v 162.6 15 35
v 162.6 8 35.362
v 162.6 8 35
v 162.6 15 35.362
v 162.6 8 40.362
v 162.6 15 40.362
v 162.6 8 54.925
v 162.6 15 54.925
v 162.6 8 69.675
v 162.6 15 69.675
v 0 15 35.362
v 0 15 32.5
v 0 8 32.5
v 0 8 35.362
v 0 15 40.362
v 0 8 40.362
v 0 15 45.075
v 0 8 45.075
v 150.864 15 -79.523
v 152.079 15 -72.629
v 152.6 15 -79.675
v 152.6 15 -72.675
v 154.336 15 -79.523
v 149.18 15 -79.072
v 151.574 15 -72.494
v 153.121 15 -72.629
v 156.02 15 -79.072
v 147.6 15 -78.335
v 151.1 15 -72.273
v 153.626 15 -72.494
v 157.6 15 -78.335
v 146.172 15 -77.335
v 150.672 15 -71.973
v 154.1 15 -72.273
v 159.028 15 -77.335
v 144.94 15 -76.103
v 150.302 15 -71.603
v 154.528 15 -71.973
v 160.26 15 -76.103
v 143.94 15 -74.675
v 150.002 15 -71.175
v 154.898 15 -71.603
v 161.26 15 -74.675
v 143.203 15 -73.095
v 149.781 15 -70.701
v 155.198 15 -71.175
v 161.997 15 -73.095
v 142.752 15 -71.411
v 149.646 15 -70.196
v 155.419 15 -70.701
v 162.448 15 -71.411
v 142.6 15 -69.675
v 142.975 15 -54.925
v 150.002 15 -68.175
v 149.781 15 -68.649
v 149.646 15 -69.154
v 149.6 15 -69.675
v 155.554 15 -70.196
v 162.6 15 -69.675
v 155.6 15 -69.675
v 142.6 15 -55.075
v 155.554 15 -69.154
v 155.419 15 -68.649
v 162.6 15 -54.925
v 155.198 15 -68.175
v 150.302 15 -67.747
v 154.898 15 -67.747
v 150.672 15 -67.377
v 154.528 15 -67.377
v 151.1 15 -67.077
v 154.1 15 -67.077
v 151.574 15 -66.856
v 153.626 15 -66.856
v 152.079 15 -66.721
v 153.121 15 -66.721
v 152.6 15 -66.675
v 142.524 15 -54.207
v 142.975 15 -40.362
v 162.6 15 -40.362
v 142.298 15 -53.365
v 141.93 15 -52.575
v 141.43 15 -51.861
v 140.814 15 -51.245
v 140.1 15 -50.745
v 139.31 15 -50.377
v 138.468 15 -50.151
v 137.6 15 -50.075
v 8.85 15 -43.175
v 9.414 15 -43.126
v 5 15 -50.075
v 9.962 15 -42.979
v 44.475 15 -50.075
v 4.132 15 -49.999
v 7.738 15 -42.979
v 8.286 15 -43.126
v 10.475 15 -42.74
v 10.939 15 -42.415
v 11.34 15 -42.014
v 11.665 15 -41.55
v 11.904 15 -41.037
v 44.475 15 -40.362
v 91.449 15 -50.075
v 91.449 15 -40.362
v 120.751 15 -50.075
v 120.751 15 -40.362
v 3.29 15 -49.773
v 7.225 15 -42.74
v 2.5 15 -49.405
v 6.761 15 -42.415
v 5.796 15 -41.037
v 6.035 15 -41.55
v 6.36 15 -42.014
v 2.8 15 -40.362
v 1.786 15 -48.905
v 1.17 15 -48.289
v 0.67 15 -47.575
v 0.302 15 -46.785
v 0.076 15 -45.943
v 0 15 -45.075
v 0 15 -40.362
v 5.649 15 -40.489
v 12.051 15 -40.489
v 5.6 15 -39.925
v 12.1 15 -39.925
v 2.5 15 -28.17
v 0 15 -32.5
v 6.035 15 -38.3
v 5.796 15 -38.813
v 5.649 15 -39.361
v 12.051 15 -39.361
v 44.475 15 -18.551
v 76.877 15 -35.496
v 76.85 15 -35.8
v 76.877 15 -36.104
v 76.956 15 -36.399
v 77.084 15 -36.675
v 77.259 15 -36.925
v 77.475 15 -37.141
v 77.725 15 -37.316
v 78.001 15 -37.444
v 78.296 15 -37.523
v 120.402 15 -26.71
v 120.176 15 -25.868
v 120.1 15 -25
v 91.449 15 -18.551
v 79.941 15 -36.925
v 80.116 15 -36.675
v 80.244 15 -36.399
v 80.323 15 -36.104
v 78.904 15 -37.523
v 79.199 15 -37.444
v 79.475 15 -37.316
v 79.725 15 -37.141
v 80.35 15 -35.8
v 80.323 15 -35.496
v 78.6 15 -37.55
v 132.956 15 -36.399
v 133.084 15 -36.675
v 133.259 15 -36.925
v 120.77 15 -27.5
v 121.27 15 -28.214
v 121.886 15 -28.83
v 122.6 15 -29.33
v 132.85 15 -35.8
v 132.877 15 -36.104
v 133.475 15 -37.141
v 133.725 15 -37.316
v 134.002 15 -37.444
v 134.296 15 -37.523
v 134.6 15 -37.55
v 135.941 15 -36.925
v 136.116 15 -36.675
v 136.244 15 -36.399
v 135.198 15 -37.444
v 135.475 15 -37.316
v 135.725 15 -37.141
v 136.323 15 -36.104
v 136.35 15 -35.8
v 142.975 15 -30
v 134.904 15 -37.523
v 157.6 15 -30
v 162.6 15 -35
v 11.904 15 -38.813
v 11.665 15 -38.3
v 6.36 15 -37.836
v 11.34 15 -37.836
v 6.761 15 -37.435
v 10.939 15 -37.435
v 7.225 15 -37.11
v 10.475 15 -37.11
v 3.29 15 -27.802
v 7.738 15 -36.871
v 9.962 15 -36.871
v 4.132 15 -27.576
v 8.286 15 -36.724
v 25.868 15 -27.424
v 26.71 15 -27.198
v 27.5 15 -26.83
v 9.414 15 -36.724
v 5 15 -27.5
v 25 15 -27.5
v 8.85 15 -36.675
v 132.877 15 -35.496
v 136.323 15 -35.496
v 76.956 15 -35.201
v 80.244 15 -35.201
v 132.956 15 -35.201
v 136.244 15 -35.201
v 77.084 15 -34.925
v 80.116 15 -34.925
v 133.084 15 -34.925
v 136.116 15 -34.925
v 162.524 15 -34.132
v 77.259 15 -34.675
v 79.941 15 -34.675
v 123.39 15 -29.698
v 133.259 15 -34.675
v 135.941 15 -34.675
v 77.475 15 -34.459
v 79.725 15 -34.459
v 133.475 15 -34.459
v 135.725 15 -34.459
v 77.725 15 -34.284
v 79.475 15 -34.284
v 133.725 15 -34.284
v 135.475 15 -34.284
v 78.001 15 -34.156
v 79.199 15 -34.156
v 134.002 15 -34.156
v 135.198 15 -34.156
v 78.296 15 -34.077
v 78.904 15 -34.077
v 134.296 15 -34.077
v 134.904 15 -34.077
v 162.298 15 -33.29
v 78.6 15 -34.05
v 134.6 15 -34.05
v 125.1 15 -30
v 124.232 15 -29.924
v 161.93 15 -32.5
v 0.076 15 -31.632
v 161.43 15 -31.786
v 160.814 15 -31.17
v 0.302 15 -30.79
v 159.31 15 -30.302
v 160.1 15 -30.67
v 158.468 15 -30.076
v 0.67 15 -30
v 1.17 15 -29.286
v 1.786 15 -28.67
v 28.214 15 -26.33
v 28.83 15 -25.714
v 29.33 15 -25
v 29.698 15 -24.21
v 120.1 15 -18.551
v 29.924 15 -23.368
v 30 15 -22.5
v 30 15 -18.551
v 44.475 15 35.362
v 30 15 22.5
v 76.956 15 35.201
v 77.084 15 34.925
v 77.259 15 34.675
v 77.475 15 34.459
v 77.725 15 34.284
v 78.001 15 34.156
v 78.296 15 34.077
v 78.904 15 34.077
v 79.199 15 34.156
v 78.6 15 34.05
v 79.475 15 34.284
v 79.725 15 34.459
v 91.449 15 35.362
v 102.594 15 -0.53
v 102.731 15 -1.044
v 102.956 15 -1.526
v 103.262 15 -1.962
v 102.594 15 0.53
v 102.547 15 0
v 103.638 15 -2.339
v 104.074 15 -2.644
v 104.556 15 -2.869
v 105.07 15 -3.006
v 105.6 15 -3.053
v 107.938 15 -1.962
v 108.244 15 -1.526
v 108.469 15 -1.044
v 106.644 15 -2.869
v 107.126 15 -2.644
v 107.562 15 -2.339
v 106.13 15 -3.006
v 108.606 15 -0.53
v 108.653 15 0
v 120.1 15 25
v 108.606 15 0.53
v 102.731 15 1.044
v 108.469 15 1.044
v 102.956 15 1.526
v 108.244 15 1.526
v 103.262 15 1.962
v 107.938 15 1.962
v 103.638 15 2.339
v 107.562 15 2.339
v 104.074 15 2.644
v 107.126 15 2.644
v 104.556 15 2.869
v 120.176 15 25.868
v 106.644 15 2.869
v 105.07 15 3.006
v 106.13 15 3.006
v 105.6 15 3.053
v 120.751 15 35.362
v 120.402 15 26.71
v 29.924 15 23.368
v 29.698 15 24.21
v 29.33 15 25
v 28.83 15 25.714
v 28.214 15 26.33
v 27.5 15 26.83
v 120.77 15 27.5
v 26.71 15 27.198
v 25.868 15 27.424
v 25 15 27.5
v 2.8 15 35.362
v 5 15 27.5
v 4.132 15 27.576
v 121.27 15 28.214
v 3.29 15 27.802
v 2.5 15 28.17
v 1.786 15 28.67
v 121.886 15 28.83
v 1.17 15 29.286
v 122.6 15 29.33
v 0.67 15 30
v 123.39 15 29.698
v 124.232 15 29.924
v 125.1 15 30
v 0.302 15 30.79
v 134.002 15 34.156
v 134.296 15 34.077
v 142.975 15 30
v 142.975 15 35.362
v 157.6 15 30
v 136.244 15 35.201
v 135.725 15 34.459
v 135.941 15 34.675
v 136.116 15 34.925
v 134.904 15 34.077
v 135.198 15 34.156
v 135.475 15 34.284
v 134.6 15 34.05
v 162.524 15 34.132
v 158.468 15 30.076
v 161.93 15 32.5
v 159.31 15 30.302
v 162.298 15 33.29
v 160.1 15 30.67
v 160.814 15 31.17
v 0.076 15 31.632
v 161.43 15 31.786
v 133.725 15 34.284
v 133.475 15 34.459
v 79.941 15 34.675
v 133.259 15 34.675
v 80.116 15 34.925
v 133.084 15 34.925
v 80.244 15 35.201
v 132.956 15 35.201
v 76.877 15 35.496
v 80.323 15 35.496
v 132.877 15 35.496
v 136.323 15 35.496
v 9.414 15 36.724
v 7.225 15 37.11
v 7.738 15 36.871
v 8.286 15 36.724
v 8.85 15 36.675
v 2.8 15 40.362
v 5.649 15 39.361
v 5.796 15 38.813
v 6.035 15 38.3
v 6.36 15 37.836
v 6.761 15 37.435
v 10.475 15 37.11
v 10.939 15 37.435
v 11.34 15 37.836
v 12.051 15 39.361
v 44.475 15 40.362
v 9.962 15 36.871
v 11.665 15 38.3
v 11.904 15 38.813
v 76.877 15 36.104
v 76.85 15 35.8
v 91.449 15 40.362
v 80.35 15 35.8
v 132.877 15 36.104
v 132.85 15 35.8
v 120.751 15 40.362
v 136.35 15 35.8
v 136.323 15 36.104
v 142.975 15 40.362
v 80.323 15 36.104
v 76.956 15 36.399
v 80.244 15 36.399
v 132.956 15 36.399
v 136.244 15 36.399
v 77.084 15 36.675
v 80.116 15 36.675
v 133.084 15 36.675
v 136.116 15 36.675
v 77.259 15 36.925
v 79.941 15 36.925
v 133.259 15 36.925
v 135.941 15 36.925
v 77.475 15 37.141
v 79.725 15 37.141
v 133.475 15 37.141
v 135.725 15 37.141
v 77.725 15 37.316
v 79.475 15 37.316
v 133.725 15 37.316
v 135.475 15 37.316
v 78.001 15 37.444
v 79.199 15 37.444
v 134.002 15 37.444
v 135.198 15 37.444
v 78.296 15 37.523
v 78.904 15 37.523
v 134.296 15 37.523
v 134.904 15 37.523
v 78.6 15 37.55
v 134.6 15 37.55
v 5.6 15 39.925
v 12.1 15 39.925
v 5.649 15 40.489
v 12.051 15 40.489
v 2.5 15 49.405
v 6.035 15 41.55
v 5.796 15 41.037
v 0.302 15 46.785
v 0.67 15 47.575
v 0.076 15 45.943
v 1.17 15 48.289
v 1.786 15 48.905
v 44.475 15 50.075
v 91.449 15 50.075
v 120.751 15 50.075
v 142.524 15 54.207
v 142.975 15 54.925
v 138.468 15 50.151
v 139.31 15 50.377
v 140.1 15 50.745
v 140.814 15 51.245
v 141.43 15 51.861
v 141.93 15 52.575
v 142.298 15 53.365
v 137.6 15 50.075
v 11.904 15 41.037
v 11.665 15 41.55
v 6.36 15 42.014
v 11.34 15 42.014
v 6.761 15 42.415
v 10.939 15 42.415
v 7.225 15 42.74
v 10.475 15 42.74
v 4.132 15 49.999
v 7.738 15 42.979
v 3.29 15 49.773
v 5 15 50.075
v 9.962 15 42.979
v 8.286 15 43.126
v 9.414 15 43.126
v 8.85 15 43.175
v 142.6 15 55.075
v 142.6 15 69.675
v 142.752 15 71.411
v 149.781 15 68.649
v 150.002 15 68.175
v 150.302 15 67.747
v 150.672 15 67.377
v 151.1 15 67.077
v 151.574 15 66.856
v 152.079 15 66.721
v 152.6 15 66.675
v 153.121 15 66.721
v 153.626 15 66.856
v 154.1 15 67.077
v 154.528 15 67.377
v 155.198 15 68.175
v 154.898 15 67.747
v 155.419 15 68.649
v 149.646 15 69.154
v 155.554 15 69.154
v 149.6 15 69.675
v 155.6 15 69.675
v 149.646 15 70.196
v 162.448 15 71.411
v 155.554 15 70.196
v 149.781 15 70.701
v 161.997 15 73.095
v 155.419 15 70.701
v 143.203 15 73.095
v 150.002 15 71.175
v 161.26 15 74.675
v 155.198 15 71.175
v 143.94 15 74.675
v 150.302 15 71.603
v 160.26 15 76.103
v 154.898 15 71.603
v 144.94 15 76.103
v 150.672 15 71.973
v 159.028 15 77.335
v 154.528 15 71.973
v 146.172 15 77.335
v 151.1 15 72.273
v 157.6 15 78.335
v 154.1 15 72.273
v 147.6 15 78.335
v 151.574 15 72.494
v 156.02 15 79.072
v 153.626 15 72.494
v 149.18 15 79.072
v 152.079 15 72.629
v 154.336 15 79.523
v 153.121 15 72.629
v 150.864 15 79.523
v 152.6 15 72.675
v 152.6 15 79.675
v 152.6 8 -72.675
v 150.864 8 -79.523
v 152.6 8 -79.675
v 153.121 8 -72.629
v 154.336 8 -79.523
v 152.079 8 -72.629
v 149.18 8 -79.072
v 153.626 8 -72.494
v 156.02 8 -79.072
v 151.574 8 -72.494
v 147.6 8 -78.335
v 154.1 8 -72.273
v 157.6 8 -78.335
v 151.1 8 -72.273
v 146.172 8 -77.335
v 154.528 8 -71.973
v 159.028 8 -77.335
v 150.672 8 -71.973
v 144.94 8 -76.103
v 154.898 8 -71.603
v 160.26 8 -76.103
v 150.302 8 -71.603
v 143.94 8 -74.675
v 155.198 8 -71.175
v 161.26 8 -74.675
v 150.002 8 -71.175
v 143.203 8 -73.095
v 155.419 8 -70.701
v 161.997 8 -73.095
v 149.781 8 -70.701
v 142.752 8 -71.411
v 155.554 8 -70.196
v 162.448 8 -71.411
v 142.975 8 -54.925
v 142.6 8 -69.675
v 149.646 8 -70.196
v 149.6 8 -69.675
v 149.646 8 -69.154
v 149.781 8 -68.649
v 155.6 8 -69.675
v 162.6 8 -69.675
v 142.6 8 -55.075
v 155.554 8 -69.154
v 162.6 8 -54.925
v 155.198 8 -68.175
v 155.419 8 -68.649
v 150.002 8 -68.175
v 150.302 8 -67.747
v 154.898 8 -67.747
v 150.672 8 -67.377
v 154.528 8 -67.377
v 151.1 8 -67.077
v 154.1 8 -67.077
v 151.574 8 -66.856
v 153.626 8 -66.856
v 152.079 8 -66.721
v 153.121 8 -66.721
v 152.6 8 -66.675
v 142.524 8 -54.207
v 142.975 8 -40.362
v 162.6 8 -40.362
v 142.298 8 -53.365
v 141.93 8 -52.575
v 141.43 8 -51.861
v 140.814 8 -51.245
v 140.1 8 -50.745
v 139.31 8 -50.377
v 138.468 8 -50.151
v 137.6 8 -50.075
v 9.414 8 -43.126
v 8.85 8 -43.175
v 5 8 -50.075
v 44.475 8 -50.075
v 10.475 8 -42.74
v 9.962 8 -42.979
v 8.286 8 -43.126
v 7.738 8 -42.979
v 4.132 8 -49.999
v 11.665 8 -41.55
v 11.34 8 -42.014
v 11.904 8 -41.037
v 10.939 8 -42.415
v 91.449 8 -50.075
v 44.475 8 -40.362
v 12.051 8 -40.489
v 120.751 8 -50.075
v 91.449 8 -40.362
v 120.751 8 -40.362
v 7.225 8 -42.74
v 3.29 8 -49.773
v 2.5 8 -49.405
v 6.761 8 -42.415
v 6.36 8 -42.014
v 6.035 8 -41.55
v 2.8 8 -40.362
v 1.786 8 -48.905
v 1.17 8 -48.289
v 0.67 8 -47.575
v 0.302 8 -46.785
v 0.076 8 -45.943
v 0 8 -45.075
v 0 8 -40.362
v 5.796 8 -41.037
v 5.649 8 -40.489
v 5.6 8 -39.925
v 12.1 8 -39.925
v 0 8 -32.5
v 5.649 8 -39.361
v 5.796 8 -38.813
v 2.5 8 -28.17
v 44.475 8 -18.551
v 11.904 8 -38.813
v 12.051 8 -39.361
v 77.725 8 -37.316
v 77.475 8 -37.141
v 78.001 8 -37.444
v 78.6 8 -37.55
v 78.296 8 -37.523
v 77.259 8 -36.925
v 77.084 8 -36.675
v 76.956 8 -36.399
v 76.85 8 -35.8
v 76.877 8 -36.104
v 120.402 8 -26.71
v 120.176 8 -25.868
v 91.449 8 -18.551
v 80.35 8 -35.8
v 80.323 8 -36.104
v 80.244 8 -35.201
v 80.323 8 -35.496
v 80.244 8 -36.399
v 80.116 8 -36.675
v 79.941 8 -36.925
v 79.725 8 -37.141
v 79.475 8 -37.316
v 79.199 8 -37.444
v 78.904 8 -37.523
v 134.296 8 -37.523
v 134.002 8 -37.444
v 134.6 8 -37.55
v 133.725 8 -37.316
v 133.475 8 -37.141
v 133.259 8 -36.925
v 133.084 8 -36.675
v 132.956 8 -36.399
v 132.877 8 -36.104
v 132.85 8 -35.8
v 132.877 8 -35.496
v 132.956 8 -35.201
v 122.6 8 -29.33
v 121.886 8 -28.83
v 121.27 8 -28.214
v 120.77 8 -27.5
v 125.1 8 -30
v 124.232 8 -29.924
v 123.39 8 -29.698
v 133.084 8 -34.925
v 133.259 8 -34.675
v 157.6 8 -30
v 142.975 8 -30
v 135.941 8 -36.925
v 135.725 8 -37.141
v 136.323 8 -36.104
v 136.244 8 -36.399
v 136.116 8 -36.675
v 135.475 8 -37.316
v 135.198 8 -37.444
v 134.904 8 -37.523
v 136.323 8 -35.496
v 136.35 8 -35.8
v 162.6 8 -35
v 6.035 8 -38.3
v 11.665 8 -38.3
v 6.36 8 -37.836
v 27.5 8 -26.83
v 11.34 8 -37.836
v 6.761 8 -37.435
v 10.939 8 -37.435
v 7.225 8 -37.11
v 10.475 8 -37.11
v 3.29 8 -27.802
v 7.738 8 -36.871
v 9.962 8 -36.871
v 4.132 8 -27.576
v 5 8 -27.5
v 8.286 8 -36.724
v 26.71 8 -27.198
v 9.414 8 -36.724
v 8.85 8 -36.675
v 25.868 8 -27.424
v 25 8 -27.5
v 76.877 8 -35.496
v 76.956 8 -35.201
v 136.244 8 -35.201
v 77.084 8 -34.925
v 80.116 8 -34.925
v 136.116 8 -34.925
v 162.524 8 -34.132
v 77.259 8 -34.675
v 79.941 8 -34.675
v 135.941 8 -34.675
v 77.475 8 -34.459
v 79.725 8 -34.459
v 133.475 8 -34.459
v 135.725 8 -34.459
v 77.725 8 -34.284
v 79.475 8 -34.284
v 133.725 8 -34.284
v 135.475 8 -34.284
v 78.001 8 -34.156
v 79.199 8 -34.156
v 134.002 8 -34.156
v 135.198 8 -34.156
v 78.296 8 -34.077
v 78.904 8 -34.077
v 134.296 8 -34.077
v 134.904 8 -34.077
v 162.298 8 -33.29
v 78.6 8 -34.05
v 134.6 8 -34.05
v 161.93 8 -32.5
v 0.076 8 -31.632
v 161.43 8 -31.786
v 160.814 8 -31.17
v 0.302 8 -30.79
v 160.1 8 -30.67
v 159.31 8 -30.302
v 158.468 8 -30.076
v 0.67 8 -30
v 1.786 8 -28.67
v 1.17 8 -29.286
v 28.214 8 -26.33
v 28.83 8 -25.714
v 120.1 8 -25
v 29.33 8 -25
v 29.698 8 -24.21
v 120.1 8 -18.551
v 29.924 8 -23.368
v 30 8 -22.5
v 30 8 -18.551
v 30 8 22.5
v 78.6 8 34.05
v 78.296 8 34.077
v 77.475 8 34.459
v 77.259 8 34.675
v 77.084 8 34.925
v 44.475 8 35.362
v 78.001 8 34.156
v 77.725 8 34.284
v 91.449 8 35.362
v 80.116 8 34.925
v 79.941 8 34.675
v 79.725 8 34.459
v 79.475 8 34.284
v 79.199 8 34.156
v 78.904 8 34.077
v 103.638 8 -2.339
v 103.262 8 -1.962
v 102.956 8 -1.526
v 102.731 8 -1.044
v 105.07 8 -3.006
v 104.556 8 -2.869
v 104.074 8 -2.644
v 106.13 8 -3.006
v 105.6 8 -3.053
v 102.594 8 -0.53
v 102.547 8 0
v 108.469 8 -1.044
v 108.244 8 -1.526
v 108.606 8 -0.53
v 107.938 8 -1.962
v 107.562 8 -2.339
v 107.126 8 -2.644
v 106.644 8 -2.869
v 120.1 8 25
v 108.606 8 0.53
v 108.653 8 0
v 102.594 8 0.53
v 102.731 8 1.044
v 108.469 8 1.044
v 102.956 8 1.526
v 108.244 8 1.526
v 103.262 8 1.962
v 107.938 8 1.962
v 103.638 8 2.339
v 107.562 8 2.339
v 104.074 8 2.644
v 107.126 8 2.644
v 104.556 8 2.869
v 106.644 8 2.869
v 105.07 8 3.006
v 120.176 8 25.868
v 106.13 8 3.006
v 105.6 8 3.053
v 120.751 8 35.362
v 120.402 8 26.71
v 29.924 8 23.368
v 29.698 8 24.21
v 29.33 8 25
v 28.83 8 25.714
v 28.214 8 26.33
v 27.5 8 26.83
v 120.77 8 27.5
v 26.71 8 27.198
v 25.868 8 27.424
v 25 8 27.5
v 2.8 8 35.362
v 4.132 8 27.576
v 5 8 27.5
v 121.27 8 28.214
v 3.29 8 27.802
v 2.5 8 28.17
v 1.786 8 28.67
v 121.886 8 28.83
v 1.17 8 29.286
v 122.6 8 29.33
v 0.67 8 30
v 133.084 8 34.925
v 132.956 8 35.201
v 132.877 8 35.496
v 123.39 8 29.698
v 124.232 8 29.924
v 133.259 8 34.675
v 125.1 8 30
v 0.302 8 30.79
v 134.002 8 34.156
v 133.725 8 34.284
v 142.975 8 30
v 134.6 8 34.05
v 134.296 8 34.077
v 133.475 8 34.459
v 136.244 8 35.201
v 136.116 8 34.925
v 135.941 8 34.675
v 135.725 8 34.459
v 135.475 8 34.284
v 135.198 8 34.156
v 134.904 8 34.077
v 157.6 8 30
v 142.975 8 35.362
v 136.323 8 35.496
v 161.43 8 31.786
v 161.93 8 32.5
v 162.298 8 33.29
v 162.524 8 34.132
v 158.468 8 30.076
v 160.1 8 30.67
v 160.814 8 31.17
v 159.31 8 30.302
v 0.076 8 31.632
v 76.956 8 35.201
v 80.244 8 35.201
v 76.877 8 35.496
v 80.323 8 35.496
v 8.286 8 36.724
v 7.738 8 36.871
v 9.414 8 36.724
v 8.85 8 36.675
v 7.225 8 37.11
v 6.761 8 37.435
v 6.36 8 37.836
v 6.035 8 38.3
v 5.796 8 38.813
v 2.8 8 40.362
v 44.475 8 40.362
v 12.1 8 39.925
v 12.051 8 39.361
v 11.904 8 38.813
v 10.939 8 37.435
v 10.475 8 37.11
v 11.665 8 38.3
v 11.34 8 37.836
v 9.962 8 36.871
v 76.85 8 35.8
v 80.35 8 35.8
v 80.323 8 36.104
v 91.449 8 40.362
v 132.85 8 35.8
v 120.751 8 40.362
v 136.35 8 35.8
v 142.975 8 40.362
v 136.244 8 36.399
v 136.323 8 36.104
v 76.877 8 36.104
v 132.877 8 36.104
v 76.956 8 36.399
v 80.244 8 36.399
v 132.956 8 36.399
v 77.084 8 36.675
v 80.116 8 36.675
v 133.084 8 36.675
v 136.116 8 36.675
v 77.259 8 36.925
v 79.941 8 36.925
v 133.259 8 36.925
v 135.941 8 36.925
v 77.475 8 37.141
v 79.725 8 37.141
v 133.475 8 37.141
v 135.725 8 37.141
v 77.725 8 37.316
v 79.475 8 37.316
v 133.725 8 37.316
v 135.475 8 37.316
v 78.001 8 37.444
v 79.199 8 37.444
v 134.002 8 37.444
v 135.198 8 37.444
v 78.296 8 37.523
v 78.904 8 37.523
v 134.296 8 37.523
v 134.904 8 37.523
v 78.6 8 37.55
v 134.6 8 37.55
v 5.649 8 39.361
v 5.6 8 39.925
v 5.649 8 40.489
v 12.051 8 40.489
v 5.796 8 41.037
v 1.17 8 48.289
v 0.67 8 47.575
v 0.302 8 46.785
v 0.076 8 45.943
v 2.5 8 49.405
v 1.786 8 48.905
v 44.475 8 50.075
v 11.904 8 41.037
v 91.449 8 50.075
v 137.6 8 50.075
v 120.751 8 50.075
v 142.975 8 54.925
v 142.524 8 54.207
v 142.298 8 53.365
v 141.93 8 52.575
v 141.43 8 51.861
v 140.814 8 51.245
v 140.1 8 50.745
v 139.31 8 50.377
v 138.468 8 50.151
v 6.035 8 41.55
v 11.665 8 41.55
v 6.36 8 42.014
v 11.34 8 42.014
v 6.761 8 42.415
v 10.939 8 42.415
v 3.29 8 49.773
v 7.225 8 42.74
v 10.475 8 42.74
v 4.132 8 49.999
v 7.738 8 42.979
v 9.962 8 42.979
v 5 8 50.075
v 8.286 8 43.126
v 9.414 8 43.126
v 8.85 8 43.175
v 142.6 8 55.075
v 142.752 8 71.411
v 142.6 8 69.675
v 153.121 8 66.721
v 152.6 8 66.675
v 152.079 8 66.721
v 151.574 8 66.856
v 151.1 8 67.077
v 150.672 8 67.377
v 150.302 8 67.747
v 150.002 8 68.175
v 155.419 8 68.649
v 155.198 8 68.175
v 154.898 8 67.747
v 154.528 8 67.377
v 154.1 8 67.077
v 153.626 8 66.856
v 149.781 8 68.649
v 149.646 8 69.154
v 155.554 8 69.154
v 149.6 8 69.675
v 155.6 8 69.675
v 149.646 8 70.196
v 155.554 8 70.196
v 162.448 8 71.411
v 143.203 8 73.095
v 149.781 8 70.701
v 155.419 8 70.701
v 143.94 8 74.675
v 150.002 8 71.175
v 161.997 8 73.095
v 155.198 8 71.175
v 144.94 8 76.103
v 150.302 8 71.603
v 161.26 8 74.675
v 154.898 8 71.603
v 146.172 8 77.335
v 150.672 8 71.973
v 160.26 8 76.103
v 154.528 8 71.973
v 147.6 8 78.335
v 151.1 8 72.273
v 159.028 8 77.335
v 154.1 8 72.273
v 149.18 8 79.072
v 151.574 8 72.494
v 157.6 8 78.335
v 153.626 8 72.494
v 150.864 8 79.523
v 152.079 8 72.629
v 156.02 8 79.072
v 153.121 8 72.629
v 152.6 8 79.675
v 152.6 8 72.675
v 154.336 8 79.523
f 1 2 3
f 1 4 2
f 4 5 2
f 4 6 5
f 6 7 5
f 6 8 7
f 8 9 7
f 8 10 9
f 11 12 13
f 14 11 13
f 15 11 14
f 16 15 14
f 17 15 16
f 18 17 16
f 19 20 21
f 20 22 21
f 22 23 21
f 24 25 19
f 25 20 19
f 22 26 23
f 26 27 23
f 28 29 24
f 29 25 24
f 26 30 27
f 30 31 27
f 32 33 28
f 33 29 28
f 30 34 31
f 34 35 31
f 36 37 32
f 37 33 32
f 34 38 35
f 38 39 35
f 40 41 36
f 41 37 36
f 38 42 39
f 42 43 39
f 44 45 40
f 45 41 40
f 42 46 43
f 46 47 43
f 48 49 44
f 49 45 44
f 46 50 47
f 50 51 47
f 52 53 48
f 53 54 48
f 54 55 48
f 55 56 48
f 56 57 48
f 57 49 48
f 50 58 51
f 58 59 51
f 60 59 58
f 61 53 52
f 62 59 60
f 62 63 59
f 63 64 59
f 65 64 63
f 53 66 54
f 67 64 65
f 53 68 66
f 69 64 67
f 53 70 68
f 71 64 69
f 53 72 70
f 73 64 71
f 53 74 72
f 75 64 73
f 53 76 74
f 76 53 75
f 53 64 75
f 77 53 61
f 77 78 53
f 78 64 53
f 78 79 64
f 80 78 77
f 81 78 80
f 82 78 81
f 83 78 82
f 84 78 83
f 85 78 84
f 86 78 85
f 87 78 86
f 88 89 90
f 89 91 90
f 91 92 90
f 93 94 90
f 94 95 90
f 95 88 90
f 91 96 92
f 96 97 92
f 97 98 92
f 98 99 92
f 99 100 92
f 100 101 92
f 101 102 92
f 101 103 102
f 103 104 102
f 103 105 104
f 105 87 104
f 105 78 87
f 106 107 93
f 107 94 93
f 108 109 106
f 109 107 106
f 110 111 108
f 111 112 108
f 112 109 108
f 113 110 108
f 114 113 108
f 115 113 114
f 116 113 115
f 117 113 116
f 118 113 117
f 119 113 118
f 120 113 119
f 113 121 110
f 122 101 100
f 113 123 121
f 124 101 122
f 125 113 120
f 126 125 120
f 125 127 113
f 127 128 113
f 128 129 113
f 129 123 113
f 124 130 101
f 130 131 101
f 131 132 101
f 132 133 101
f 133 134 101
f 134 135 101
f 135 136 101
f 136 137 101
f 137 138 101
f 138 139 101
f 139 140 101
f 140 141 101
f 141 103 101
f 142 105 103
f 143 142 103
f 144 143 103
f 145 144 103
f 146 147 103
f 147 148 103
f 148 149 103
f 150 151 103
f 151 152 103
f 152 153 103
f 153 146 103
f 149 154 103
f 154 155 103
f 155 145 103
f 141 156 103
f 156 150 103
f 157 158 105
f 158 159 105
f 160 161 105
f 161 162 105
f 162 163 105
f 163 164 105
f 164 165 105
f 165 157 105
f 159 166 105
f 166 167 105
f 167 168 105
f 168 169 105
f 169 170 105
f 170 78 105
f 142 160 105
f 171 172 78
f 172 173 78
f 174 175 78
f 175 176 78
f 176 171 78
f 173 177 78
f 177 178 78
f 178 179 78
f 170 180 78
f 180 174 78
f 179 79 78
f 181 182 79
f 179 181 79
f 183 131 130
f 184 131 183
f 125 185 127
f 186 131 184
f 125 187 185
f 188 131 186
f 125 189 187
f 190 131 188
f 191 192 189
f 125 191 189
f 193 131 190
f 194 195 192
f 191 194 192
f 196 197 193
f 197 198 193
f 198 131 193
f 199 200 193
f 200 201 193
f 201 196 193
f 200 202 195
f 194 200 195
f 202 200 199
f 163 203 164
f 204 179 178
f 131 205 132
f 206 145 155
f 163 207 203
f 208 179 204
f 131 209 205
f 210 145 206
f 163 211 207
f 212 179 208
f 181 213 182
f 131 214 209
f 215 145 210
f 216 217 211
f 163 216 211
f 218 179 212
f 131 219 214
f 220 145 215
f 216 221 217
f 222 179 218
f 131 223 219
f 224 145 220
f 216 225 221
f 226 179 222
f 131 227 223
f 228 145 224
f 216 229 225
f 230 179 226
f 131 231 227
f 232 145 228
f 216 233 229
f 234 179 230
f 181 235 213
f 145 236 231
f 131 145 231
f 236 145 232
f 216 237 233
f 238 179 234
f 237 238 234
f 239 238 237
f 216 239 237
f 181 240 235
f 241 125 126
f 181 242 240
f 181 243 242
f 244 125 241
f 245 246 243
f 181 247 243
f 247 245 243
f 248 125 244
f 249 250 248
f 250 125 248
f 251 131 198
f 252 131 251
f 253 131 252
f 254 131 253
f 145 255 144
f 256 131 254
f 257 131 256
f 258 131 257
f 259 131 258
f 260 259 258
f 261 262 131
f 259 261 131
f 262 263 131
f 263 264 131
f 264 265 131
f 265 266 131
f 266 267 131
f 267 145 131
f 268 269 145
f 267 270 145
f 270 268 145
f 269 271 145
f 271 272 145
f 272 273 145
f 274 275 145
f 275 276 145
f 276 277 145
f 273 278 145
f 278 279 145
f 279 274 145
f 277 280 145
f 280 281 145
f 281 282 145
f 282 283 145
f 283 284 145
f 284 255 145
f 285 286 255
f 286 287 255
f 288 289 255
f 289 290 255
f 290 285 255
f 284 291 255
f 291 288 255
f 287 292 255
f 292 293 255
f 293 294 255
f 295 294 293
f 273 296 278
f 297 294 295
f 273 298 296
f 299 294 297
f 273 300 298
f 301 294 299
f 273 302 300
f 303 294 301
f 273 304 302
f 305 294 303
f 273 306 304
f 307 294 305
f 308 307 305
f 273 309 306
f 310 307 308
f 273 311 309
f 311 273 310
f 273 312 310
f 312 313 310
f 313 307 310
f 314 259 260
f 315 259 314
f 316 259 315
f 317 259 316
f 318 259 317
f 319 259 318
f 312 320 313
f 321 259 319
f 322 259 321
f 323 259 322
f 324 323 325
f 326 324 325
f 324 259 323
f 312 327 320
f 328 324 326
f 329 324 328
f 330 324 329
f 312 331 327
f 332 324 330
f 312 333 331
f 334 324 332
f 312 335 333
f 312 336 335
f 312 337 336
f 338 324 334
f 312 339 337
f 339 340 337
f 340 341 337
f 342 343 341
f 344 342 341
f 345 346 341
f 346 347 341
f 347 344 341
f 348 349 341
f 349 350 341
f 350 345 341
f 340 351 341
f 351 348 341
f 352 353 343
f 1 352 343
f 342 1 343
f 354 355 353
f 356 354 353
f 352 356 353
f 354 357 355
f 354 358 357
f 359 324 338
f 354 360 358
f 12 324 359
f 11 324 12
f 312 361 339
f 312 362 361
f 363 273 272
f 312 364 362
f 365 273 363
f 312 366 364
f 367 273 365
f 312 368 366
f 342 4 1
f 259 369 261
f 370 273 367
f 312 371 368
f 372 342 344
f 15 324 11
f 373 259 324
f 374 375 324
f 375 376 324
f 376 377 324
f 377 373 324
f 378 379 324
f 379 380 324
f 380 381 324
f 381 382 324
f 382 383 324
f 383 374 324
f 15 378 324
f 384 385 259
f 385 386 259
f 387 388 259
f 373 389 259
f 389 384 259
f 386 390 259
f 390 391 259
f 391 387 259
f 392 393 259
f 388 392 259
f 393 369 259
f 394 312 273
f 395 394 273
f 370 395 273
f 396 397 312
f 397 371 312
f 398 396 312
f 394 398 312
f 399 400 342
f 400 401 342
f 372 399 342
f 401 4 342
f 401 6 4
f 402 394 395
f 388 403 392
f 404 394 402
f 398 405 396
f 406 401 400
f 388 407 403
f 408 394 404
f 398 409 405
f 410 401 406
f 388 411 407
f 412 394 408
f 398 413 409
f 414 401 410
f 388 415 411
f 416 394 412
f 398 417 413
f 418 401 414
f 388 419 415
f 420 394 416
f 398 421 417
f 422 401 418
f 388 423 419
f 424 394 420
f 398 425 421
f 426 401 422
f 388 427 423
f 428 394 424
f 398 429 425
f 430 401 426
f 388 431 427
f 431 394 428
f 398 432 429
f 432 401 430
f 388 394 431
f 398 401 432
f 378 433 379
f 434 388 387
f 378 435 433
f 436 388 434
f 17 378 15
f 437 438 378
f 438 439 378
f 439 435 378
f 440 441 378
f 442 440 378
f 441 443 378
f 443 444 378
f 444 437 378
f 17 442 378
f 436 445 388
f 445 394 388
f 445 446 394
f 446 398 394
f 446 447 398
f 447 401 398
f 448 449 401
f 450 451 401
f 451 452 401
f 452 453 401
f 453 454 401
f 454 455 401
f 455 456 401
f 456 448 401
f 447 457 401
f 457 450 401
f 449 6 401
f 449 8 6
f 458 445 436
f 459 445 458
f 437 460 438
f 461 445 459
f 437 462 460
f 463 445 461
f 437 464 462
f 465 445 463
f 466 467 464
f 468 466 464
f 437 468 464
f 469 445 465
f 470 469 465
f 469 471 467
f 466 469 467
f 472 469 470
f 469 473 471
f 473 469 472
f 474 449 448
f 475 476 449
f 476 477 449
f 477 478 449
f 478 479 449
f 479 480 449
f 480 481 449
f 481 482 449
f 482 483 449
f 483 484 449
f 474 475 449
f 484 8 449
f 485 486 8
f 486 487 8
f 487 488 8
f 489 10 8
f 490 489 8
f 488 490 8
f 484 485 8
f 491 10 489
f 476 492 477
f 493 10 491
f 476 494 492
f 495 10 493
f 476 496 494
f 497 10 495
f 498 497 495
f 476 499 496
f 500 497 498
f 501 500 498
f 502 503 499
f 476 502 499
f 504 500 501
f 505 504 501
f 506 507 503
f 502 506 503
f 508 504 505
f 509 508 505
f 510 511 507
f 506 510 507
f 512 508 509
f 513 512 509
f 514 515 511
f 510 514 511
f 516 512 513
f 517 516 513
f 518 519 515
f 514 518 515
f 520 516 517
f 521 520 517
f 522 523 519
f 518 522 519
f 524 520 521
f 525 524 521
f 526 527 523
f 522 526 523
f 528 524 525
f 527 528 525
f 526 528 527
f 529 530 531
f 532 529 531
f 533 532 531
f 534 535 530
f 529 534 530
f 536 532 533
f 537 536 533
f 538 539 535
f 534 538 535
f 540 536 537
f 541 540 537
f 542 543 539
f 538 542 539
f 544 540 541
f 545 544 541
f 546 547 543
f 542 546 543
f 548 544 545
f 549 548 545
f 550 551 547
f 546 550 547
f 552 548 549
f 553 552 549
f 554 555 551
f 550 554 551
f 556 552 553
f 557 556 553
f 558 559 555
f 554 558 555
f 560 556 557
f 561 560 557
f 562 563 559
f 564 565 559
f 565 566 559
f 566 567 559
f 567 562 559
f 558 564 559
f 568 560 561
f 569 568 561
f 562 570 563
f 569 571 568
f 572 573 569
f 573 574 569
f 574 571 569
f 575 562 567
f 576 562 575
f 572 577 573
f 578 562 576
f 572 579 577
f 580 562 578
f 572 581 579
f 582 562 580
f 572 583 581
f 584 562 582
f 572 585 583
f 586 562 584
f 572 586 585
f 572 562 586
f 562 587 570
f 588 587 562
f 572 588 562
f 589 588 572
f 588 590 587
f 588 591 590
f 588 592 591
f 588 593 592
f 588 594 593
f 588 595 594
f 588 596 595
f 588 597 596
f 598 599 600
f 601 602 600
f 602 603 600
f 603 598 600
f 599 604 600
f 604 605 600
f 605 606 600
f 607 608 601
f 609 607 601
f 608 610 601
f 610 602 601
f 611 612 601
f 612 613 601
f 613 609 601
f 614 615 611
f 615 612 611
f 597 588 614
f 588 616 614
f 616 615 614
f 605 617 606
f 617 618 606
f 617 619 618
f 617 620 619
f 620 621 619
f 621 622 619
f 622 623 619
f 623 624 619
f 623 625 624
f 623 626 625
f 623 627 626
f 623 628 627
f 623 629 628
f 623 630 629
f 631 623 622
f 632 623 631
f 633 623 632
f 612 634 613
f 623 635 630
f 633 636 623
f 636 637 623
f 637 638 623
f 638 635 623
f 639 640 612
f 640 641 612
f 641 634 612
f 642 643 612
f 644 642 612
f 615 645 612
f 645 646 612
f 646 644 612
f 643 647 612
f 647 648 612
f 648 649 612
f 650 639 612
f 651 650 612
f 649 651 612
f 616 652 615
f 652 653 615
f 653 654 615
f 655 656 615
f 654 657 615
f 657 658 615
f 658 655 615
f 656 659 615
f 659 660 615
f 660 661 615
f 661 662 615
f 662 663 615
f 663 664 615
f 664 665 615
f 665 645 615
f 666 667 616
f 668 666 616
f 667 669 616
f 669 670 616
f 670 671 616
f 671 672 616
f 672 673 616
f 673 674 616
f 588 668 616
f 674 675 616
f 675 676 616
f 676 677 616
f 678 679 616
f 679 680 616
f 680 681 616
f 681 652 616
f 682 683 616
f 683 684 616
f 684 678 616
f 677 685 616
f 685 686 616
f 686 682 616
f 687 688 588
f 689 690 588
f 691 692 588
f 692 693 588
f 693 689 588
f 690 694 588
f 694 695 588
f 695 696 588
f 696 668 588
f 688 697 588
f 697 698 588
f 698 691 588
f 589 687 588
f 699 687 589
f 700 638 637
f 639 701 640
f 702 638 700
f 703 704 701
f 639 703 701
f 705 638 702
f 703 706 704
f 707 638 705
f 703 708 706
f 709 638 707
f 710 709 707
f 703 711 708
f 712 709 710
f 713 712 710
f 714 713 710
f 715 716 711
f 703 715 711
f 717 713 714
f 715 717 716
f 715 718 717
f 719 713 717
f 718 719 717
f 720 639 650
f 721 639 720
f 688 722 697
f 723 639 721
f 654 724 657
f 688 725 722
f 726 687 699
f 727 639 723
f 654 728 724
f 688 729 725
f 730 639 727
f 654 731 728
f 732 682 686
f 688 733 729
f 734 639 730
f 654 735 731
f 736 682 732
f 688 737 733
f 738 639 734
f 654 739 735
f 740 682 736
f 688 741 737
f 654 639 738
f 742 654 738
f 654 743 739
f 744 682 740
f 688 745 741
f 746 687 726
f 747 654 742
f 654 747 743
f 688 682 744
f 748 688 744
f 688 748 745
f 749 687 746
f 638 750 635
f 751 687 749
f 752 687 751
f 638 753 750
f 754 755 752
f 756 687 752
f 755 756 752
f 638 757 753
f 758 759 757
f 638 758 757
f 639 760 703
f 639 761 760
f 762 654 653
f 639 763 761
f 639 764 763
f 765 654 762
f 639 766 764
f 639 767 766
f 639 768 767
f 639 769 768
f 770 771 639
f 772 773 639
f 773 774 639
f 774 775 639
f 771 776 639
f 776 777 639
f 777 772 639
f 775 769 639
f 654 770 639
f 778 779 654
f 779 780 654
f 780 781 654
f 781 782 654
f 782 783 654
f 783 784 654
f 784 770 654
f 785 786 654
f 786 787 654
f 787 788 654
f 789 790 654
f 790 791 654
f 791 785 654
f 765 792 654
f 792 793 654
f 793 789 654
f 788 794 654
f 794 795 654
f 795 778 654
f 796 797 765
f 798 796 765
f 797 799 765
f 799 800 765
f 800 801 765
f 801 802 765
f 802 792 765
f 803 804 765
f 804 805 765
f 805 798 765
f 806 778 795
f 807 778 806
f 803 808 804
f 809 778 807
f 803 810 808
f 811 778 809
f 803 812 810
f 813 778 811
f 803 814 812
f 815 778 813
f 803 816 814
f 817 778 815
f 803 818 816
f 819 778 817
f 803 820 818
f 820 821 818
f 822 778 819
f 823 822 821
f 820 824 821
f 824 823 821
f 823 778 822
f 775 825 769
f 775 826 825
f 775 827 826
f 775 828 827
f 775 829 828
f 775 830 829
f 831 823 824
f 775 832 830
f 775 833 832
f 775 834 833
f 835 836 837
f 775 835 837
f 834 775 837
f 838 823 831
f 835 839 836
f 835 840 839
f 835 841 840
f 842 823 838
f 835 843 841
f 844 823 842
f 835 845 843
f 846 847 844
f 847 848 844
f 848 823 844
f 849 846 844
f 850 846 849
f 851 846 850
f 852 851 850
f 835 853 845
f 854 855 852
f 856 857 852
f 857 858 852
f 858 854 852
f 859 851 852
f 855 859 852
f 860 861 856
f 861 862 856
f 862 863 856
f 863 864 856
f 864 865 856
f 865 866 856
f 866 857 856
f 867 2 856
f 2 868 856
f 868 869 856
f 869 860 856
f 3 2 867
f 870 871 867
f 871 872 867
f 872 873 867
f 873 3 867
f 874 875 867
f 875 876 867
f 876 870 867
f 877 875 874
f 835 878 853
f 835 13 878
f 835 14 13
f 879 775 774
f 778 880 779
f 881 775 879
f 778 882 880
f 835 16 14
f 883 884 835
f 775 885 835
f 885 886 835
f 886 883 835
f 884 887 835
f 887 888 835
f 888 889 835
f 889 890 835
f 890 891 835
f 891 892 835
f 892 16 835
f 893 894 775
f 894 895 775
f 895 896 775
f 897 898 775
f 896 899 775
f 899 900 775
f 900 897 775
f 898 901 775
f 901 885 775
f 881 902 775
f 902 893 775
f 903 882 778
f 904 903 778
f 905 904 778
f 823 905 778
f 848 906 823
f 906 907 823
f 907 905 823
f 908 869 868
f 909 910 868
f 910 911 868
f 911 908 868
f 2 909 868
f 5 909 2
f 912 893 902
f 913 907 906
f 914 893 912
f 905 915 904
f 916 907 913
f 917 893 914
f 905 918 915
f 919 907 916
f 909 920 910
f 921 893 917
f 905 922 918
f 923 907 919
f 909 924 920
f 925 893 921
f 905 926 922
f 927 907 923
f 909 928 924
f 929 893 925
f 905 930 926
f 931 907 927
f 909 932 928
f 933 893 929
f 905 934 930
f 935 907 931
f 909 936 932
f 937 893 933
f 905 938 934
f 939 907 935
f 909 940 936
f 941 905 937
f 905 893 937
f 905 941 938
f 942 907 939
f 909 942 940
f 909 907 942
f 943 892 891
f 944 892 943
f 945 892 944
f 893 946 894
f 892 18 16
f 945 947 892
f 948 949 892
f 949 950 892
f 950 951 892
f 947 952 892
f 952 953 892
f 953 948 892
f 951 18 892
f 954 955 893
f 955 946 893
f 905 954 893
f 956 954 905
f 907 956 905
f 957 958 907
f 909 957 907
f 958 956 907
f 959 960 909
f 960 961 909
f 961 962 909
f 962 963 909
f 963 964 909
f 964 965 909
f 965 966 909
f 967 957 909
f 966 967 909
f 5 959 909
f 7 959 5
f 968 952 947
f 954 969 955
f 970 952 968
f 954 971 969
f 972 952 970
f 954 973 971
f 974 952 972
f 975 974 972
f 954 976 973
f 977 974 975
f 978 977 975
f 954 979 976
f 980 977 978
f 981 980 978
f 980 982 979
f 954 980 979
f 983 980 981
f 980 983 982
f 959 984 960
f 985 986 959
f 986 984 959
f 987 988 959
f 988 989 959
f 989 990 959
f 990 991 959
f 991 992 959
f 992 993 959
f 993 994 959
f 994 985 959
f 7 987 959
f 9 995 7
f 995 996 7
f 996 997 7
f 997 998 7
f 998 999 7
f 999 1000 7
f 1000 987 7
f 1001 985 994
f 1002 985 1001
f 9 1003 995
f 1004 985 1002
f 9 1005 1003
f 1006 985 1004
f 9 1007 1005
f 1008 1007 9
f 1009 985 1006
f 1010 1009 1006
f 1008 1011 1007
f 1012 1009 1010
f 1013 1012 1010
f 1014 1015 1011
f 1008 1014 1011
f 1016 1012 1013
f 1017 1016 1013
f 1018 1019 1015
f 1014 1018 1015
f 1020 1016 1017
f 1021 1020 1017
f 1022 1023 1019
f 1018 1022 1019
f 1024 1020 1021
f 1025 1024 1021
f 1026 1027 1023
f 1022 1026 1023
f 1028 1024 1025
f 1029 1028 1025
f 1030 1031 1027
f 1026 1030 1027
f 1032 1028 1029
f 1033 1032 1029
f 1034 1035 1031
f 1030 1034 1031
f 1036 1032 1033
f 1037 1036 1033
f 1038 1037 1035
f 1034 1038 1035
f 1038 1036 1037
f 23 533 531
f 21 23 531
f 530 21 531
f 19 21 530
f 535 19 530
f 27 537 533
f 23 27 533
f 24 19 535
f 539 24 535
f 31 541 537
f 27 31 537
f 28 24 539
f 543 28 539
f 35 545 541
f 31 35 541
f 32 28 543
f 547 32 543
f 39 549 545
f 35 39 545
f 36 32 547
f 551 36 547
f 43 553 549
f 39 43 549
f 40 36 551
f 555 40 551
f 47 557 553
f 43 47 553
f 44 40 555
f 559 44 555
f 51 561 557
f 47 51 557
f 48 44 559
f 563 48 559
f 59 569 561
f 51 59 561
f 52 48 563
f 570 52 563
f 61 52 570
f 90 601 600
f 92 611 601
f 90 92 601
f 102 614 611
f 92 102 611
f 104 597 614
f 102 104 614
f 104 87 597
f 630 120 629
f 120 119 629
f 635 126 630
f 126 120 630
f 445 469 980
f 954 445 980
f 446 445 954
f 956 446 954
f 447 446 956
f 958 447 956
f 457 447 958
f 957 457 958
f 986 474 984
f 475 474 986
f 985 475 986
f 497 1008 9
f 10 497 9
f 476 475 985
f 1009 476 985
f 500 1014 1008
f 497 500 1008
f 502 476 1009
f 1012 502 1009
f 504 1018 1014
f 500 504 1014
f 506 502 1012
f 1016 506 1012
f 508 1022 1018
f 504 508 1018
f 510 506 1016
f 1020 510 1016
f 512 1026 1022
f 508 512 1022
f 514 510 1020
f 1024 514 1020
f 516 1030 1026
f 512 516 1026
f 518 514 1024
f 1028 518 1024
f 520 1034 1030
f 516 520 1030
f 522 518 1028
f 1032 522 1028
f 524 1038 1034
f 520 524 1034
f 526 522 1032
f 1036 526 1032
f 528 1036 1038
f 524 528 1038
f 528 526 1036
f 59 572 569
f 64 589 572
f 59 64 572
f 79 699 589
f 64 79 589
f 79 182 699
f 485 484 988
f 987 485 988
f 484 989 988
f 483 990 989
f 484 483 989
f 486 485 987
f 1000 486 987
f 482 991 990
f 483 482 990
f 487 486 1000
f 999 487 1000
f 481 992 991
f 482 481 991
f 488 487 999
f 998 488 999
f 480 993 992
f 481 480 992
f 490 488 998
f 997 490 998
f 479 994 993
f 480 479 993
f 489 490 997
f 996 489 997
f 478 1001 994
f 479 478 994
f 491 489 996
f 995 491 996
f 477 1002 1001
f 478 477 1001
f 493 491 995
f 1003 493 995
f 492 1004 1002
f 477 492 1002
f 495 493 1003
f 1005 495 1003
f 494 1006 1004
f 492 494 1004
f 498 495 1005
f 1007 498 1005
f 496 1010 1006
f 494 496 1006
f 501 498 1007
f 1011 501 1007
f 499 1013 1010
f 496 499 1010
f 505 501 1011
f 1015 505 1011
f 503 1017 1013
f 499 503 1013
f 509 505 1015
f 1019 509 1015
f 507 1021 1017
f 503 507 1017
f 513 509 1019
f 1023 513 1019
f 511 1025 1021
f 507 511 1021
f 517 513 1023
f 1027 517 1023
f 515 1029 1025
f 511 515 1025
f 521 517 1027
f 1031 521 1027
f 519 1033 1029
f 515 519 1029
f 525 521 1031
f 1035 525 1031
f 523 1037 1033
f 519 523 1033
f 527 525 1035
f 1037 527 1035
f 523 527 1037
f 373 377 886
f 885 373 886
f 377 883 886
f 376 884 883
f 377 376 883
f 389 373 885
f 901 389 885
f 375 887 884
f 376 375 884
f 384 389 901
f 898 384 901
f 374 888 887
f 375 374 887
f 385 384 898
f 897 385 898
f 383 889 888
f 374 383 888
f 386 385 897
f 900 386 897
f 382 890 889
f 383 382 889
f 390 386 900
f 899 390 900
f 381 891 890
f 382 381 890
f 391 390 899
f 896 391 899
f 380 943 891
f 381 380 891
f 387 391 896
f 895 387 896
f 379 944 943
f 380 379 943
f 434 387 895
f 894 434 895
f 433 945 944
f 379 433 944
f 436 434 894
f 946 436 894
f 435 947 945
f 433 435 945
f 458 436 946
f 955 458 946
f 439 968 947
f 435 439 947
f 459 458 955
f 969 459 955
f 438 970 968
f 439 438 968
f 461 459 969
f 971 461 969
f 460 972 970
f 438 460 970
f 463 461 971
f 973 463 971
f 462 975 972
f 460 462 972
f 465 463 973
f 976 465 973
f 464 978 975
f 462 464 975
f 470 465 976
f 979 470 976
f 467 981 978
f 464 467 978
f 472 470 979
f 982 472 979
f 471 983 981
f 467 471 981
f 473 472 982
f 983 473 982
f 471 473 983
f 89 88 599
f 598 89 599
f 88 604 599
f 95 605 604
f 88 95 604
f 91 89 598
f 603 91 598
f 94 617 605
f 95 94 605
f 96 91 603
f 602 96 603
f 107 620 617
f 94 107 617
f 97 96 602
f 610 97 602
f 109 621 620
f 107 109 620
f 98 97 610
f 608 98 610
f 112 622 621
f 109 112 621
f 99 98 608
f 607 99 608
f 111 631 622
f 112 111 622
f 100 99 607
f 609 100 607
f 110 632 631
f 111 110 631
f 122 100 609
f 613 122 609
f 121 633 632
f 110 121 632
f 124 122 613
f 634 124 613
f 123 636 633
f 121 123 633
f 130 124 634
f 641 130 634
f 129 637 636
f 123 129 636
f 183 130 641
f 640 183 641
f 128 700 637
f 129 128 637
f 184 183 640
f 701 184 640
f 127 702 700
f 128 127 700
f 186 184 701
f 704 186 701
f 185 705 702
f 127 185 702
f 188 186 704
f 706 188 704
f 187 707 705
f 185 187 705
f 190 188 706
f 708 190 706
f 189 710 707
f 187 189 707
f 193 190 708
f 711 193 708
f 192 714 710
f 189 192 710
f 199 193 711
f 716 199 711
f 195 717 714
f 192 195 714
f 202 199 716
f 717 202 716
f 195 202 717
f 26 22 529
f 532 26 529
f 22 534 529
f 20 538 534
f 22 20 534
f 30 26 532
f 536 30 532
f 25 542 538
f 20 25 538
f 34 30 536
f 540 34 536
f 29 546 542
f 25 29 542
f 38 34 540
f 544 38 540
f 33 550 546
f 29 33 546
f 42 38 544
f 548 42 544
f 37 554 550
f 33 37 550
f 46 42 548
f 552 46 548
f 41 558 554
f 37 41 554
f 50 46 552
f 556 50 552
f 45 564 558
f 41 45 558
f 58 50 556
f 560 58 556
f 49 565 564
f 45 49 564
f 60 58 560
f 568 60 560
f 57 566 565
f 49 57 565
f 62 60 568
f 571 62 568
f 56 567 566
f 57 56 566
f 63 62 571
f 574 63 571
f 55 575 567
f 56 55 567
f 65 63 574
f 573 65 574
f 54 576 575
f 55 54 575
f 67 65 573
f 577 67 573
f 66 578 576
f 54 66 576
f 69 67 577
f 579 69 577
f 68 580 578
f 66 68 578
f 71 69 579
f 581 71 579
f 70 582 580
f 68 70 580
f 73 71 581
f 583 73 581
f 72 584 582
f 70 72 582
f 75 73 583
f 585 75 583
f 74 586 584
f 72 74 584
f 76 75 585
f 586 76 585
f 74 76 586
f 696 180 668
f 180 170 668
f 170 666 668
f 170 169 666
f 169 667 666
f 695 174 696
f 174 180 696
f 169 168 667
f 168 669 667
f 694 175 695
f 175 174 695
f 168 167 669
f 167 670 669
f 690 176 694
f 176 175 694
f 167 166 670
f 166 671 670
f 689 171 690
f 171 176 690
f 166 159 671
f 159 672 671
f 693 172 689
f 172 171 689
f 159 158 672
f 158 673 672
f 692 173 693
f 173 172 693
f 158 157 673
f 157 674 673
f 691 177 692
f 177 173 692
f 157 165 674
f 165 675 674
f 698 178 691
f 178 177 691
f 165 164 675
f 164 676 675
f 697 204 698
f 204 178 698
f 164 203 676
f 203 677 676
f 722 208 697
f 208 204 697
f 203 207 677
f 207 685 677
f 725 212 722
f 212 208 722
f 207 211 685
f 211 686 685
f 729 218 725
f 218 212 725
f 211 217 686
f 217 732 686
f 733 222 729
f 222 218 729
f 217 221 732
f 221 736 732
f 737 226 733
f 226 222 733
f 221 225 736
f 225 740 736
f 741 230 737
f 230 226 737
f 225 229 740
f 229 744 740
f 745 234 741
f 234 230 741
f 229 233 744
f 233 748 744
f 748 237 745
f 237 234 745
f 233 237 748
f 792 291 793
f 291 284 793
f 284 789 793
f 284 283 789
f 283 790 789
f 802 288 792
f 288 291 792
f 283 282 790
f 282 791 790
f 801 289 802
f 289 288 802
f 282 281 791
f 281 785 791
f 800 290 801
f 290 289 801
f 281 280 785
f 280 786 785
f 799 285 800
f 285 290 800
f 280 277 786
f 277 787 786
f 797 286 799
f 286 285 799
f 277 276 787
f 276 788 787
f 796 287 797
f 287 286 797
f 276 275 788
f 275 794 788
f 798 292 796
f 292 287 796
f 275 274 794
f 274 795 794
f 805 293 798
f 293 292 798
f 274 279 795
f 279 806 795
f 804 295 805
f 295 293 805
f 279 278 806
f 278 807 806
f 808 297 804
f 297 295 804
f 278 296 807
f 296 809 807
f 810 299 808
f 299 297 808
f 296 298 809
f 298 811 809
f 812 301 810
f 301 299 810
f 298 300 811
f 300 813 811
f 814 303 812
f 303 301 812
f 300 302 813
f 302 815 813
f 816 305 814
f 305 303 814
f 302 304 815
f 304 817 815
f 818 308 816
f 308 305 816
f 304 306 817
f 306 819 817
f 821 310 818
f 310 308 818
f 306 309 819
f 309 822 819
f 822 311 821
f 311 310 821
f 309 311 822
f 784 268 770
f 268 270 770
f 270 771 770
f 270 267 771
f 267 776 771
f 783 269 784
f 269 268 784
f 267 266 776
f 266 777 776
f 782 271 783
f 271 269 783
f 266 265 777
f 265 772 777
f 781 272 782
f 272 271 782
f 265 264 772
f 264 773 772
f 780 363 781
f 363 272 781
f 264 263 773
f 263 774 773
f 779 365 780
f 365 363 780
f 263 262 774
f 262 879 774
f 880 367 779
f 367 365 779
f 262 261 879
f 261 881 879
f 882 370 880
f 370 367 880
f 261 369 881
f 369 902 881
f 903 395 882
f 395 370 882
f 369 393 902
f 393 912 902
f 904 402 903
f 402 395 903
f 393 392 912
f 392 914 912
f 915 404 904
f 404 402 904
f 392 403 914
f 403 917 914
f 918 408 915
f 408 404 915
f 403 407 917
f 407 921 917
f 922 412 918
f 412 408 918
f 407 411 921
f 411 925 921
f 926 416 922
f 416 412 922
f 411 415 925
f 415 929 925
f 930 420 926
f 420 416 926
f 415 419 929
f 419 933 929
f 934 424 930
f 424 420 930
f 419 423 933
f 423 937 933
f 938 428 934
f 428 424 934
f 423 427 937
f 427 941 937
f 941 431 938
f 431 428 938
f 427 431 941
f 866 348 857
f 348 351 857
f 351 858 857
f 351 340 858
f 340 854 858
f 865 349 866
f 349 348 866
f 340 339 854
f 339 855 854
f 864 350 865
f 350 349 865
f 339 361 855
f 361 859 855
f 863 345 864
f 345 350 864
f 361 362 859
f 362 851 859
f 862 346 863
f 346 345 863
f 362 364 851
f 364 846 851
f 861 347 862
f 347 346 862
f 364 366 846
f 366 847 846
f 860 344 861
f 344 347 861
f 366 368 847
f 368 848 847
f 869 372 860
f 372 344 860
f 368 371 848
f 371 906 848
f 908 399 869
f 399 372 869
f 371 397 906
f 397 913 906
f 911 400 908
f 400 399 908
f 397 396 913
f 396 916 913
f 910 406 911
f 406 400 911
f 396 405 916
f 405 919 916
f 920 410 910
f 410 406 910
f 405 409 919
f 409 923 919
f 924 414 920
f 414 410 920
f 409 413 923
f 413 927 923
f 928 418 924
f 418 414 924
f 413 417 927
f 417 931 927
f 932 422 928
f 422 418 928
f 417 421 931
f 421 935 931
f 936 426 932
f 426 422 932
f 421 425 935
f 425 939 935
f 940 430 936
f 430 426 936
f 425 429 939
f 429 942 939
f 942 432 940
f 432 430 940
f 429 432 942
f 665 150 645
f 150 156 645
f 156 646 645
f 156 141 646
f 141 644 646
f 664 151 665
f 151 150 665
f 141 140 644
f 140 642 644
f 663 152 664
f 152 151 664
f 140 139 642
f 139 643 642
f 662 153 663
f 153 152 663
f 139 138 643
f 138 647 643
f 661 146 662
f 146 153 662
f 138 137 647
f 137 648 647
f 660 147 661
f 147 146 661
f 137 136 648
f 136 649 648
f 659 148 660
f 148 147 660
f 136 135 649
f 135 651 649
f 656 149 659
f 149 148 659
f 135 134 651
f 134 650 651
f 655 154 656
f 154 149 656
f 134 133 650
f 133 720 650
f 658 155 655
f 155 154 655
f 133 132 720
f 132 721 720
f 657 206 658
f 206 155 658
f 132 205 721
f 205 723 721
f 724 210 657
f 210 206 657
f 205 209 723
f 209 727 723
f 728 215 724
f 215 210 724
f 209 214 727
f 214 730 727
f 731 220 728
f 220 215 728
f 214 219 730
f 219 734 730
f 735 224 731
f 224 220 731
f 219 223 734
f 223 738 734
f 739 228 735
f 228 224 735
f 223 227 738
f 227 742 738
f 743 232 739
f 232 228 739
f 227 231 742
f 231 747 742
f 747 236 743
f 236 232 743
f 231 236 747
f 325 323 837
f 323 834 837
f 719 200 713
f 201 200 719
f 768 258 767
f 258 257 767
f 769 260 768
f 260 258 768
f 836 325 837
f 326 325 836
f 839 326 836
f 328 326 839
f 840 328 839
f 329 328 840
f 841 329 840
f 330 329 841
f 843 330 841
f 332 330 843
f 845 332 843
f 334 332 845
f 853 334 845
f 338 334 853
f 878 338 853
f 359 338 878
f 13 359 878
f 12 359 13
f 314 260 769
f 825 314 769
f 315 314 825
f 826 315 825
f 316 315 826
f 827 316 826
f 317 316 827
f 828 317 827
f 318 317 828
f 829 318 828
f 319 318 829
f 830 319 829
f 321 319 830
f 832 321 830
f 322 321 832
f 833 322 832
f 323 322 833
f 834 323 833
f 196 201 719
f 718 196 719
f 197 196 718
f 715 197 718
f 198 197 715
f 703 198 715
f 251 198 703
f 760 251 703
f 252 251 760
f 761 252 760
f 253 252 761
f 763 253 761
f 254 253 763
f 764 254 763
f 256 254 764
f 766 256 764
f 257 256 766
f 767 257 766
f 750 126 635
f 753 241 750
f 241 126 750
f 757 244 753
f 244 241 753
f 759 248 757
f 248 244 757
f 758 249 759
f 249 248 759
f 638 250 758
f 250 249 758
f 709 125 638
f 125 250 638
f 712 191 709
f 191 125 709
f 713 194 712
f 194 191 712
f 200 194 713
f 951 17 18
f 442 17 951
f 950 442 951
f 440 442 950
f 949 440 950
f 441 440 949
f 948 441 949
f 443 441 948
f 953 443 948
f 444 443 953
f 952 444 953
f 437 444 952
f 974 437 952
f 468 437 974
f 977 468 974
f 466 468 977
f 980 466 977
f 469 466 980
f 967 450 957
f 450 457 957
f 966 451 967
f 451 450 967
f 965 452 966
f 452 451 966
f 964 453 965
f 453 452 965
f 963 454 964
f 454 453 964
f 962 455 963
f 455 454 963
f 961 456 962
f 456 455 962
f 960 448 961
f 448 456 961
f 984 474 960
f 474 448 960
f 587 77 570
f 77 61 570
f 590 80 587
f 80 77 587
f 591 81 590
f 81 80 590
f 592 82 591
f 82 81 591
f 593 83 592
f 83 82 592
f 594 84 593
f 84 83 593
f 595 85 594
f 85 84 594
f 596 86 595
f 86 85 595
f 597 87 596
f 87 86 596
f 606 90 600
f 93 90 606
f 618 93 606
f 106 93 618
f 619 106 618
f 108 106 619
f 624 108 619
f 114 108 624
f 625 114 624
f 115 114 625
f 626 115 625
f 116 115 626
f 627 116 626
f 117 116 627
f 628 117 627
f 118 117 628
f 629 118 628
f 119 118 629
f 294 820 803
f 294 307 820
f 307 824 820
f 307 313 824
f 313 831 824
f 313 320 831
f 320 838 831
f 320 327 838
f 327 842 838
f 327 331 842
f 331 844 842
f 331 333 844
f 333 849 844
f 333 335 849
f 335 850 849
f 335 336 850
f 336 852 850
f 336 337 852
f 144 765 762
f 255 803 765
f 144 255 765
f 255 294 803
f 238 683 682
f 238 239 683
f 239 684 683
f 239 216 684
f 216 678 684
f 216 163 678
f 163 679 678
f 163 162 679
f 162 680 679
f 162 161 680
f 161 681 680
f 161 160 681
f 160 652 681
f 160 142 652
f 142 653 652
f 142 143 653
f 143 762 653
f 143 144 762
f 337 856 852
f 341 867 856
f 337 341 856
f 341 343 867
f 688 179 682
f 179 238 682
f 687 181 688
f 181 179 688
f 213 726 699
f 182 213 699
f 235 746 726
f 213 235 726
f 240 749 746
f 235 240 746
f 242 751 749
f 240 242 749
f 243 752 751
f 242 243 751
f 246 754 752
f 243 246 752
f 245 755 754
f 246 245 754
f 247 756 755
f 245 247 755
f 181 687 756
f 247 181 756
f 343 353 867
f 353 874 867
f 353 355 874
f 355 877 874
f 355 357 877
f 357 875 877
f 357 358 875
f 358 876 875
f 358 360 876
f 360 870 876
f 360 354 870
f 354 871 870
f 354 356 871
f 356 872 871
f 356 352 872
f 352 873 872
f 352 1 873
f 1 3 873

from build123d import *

# Parameters (mm, degrees)
CROQUIS2_R              = 3
CROQUIS2_R_2            = 3.25
SALIENTE_EXTRUIR1_DEPTH = 7
CORTAR_EXTRUIR3_DEPTH   = 7
CROQUIS4_W              = 60
CROQUIS4_H              = 55
CORTAR_EXTRUIR4_DEPTH   = 7
REDONDEO1_R             = 5
CORTAR_EXTRUIR5_DEPTH   = 10
REDONDEO2_R             = 5


with BuildPart() as part:
    # Croquis2 → Saliente-Extruir1 (new body)
    with BuildSketch(Plane(origin=(0, 8, 0), x_dir=(1, 0, 0), z_dir=(0, 1, 0))):
        with BuildLine():
            Line((162.6, -69.675), (162.6, 69.675))
            ThreePointArc((162.6, 69.675), (152.6, 79.675), (142.6, 69.675))
            Line((142.6, 69.675), (142.6, 50.075))
            Line((142.6, 50.075), (8.85, 50.075))
            Line((8.85, 50.075), (0, 50.075))
            Line((0, 50.075), (0, -50.075))
            Line((0, -50.075), (8.85, -50.075))
            Line((8.85, -50.075), (142.6, -50.075))
            Line((142.6, -50.075), (142.6, -69.675))
            ThreePointArc((142.6, -69.675), (152.6, -79.675), (162.6, -69.675))
        make_face()
        with Locations(Location((152.6, -69.675, 0), (0, 0, 90))):
            Circle(CROQUIS2_R, mode=Mode.SUBTRACT)
        with Locations(Location((8.85, -39.925, 0), (0, 0, 90))):
            Circle(CROQUIS2_R_2, mode=Mode.SUBTRACT)
        with Locations(Location((8.85, 39.925, 0), (0, 0, 90))):
            Circle(CROQUIS2_R_2, mode=Mode.SUBTRACT)
        with Locations(Location((152.6, 69.675, 0), (0, 0, 90))):
            Circle(CROQUIS2_R, mode=Mode.SUBTRACT)
    extrude(amount=SALIENTE_EXTRUIR1_DEPTH)

    # Croquis3 → Cortar-Extruir3 (cut)
    with BuildSketch(Plane(origin=(0, 15, 0), x_dir=(1, 0, 0), z_dir=(0, 1, 0))):
        with BuildLine():
            ThreePointArc((134.6, 34.049999999), (136.35, 35.799999999), (134.6, 37.549999999))
            ThreePointArc((134.6, 37.549999999), (132.85, 35.799999999), (134.6, 34.049999999))
        make_face()
        with BuildLine():
            ThreePointArc((78.6, 34.049999999), (80.35, 35.799999999), (78.6, 37.549999999))
            ThreePointArc((78.6, 37.549999999), (76.85, 35.799999999), (78.6, 34.049999999))
        make_face()
        with BuildLine():
            ThreePointArc((134.6, -34.050000001), (132.85, -35.800000001), (134.6, -37.550000001))
            ThreePointArc((134.6, -37.550000001), (136.35, -35.800000001), (134.6, -34.050000001))
        make_face()
        with BuildLine():
            ThreePointArc((78.6, -37.550000001), (80.35, -35.800000001), (78.6, -34.050000001))
            ThreePointArc((78.6, -34.050000001), (76.85, -35.800000001), (78.6, -37.550000001))
        make_face()
        with BuildLine():
            ThreePointArc((105.6, -3.052700001), (108.6527, -1e-09), (105.6, 3.052699999))
            ThreePointArc((105.6, 3.052699999), (102.5473, -1e-09), (105.6, -3.052700001))
        make_face()
    extrude(amount=-CORTAR_EXTRUIR3_DEPTH, mode=Mode.SUBTRACT)

    # Croquis4 → Cortar-Extruir4 (cut)
    with BuildSketch(Plane(origin=(0, 15, 0), x_dir=(1, 0, 0), z_dir=(0, 1, 0))):
        Rectangle(CROQUIS4_W, CROQUIS4_H)
    extrude(amount=-CORTAR_EXTRUIR4_DEPTH, mode=Mode.SUBTRACT)

    # Redondeo1
    redondeo1_edges = [part.edges().sort_by_distance(p)[0] for p in [
        (142.6, 11.5, 50.075),
        (0, 11.5, 50.075),
        (0, 11.5, -50.075),
        (142.6, 11.5, -50.075),
        (0, 11.5, -27.5),
        (0, 11.5, 27.5),
        (30, 11.5, 27.5),
        (30, 11.5, -27.5),
    ]]
    fillet(redondeo1_edges, radius=REDONDEO1_R)

    # Croquis5 → Cortar-Extruir5 (cut)
    with BuildSketch(Plane(origin=(0, 15, 0), x_dir=(1, 0, 0), z_dir=(0, 1, 0))):
        with BuildLine():
            Line((125.1, -30), (205.1, -30))
            Line((205.1, -30), (205.1, 30))
            Line((205.1, 30), (125.1, 30))
            ThreePointArc((125.1, 30), (121.564466094, 28.535533906), (120.1, 25))
            Line((120.1, 25), (120.1, -25))
            ThreePointArc((120.1, -25), (121.564466094, -28.535533906), (125.1, -30))
        make_face()
    extrude(amount=-CORTAR_EXTRUIR5_DEPTH, mode=Mode.SUBTRACT)

    # Redondeo2
    redondeo2_edges = [part.edges().sort_by_distance(p)[0] for p in [
        (162.6, 11.5, -30),
        (162.6, 11.5, 30),
    ]]
    fillet(redondeo2_edges, radius=REDONDEO2_R)


solid = part.part
